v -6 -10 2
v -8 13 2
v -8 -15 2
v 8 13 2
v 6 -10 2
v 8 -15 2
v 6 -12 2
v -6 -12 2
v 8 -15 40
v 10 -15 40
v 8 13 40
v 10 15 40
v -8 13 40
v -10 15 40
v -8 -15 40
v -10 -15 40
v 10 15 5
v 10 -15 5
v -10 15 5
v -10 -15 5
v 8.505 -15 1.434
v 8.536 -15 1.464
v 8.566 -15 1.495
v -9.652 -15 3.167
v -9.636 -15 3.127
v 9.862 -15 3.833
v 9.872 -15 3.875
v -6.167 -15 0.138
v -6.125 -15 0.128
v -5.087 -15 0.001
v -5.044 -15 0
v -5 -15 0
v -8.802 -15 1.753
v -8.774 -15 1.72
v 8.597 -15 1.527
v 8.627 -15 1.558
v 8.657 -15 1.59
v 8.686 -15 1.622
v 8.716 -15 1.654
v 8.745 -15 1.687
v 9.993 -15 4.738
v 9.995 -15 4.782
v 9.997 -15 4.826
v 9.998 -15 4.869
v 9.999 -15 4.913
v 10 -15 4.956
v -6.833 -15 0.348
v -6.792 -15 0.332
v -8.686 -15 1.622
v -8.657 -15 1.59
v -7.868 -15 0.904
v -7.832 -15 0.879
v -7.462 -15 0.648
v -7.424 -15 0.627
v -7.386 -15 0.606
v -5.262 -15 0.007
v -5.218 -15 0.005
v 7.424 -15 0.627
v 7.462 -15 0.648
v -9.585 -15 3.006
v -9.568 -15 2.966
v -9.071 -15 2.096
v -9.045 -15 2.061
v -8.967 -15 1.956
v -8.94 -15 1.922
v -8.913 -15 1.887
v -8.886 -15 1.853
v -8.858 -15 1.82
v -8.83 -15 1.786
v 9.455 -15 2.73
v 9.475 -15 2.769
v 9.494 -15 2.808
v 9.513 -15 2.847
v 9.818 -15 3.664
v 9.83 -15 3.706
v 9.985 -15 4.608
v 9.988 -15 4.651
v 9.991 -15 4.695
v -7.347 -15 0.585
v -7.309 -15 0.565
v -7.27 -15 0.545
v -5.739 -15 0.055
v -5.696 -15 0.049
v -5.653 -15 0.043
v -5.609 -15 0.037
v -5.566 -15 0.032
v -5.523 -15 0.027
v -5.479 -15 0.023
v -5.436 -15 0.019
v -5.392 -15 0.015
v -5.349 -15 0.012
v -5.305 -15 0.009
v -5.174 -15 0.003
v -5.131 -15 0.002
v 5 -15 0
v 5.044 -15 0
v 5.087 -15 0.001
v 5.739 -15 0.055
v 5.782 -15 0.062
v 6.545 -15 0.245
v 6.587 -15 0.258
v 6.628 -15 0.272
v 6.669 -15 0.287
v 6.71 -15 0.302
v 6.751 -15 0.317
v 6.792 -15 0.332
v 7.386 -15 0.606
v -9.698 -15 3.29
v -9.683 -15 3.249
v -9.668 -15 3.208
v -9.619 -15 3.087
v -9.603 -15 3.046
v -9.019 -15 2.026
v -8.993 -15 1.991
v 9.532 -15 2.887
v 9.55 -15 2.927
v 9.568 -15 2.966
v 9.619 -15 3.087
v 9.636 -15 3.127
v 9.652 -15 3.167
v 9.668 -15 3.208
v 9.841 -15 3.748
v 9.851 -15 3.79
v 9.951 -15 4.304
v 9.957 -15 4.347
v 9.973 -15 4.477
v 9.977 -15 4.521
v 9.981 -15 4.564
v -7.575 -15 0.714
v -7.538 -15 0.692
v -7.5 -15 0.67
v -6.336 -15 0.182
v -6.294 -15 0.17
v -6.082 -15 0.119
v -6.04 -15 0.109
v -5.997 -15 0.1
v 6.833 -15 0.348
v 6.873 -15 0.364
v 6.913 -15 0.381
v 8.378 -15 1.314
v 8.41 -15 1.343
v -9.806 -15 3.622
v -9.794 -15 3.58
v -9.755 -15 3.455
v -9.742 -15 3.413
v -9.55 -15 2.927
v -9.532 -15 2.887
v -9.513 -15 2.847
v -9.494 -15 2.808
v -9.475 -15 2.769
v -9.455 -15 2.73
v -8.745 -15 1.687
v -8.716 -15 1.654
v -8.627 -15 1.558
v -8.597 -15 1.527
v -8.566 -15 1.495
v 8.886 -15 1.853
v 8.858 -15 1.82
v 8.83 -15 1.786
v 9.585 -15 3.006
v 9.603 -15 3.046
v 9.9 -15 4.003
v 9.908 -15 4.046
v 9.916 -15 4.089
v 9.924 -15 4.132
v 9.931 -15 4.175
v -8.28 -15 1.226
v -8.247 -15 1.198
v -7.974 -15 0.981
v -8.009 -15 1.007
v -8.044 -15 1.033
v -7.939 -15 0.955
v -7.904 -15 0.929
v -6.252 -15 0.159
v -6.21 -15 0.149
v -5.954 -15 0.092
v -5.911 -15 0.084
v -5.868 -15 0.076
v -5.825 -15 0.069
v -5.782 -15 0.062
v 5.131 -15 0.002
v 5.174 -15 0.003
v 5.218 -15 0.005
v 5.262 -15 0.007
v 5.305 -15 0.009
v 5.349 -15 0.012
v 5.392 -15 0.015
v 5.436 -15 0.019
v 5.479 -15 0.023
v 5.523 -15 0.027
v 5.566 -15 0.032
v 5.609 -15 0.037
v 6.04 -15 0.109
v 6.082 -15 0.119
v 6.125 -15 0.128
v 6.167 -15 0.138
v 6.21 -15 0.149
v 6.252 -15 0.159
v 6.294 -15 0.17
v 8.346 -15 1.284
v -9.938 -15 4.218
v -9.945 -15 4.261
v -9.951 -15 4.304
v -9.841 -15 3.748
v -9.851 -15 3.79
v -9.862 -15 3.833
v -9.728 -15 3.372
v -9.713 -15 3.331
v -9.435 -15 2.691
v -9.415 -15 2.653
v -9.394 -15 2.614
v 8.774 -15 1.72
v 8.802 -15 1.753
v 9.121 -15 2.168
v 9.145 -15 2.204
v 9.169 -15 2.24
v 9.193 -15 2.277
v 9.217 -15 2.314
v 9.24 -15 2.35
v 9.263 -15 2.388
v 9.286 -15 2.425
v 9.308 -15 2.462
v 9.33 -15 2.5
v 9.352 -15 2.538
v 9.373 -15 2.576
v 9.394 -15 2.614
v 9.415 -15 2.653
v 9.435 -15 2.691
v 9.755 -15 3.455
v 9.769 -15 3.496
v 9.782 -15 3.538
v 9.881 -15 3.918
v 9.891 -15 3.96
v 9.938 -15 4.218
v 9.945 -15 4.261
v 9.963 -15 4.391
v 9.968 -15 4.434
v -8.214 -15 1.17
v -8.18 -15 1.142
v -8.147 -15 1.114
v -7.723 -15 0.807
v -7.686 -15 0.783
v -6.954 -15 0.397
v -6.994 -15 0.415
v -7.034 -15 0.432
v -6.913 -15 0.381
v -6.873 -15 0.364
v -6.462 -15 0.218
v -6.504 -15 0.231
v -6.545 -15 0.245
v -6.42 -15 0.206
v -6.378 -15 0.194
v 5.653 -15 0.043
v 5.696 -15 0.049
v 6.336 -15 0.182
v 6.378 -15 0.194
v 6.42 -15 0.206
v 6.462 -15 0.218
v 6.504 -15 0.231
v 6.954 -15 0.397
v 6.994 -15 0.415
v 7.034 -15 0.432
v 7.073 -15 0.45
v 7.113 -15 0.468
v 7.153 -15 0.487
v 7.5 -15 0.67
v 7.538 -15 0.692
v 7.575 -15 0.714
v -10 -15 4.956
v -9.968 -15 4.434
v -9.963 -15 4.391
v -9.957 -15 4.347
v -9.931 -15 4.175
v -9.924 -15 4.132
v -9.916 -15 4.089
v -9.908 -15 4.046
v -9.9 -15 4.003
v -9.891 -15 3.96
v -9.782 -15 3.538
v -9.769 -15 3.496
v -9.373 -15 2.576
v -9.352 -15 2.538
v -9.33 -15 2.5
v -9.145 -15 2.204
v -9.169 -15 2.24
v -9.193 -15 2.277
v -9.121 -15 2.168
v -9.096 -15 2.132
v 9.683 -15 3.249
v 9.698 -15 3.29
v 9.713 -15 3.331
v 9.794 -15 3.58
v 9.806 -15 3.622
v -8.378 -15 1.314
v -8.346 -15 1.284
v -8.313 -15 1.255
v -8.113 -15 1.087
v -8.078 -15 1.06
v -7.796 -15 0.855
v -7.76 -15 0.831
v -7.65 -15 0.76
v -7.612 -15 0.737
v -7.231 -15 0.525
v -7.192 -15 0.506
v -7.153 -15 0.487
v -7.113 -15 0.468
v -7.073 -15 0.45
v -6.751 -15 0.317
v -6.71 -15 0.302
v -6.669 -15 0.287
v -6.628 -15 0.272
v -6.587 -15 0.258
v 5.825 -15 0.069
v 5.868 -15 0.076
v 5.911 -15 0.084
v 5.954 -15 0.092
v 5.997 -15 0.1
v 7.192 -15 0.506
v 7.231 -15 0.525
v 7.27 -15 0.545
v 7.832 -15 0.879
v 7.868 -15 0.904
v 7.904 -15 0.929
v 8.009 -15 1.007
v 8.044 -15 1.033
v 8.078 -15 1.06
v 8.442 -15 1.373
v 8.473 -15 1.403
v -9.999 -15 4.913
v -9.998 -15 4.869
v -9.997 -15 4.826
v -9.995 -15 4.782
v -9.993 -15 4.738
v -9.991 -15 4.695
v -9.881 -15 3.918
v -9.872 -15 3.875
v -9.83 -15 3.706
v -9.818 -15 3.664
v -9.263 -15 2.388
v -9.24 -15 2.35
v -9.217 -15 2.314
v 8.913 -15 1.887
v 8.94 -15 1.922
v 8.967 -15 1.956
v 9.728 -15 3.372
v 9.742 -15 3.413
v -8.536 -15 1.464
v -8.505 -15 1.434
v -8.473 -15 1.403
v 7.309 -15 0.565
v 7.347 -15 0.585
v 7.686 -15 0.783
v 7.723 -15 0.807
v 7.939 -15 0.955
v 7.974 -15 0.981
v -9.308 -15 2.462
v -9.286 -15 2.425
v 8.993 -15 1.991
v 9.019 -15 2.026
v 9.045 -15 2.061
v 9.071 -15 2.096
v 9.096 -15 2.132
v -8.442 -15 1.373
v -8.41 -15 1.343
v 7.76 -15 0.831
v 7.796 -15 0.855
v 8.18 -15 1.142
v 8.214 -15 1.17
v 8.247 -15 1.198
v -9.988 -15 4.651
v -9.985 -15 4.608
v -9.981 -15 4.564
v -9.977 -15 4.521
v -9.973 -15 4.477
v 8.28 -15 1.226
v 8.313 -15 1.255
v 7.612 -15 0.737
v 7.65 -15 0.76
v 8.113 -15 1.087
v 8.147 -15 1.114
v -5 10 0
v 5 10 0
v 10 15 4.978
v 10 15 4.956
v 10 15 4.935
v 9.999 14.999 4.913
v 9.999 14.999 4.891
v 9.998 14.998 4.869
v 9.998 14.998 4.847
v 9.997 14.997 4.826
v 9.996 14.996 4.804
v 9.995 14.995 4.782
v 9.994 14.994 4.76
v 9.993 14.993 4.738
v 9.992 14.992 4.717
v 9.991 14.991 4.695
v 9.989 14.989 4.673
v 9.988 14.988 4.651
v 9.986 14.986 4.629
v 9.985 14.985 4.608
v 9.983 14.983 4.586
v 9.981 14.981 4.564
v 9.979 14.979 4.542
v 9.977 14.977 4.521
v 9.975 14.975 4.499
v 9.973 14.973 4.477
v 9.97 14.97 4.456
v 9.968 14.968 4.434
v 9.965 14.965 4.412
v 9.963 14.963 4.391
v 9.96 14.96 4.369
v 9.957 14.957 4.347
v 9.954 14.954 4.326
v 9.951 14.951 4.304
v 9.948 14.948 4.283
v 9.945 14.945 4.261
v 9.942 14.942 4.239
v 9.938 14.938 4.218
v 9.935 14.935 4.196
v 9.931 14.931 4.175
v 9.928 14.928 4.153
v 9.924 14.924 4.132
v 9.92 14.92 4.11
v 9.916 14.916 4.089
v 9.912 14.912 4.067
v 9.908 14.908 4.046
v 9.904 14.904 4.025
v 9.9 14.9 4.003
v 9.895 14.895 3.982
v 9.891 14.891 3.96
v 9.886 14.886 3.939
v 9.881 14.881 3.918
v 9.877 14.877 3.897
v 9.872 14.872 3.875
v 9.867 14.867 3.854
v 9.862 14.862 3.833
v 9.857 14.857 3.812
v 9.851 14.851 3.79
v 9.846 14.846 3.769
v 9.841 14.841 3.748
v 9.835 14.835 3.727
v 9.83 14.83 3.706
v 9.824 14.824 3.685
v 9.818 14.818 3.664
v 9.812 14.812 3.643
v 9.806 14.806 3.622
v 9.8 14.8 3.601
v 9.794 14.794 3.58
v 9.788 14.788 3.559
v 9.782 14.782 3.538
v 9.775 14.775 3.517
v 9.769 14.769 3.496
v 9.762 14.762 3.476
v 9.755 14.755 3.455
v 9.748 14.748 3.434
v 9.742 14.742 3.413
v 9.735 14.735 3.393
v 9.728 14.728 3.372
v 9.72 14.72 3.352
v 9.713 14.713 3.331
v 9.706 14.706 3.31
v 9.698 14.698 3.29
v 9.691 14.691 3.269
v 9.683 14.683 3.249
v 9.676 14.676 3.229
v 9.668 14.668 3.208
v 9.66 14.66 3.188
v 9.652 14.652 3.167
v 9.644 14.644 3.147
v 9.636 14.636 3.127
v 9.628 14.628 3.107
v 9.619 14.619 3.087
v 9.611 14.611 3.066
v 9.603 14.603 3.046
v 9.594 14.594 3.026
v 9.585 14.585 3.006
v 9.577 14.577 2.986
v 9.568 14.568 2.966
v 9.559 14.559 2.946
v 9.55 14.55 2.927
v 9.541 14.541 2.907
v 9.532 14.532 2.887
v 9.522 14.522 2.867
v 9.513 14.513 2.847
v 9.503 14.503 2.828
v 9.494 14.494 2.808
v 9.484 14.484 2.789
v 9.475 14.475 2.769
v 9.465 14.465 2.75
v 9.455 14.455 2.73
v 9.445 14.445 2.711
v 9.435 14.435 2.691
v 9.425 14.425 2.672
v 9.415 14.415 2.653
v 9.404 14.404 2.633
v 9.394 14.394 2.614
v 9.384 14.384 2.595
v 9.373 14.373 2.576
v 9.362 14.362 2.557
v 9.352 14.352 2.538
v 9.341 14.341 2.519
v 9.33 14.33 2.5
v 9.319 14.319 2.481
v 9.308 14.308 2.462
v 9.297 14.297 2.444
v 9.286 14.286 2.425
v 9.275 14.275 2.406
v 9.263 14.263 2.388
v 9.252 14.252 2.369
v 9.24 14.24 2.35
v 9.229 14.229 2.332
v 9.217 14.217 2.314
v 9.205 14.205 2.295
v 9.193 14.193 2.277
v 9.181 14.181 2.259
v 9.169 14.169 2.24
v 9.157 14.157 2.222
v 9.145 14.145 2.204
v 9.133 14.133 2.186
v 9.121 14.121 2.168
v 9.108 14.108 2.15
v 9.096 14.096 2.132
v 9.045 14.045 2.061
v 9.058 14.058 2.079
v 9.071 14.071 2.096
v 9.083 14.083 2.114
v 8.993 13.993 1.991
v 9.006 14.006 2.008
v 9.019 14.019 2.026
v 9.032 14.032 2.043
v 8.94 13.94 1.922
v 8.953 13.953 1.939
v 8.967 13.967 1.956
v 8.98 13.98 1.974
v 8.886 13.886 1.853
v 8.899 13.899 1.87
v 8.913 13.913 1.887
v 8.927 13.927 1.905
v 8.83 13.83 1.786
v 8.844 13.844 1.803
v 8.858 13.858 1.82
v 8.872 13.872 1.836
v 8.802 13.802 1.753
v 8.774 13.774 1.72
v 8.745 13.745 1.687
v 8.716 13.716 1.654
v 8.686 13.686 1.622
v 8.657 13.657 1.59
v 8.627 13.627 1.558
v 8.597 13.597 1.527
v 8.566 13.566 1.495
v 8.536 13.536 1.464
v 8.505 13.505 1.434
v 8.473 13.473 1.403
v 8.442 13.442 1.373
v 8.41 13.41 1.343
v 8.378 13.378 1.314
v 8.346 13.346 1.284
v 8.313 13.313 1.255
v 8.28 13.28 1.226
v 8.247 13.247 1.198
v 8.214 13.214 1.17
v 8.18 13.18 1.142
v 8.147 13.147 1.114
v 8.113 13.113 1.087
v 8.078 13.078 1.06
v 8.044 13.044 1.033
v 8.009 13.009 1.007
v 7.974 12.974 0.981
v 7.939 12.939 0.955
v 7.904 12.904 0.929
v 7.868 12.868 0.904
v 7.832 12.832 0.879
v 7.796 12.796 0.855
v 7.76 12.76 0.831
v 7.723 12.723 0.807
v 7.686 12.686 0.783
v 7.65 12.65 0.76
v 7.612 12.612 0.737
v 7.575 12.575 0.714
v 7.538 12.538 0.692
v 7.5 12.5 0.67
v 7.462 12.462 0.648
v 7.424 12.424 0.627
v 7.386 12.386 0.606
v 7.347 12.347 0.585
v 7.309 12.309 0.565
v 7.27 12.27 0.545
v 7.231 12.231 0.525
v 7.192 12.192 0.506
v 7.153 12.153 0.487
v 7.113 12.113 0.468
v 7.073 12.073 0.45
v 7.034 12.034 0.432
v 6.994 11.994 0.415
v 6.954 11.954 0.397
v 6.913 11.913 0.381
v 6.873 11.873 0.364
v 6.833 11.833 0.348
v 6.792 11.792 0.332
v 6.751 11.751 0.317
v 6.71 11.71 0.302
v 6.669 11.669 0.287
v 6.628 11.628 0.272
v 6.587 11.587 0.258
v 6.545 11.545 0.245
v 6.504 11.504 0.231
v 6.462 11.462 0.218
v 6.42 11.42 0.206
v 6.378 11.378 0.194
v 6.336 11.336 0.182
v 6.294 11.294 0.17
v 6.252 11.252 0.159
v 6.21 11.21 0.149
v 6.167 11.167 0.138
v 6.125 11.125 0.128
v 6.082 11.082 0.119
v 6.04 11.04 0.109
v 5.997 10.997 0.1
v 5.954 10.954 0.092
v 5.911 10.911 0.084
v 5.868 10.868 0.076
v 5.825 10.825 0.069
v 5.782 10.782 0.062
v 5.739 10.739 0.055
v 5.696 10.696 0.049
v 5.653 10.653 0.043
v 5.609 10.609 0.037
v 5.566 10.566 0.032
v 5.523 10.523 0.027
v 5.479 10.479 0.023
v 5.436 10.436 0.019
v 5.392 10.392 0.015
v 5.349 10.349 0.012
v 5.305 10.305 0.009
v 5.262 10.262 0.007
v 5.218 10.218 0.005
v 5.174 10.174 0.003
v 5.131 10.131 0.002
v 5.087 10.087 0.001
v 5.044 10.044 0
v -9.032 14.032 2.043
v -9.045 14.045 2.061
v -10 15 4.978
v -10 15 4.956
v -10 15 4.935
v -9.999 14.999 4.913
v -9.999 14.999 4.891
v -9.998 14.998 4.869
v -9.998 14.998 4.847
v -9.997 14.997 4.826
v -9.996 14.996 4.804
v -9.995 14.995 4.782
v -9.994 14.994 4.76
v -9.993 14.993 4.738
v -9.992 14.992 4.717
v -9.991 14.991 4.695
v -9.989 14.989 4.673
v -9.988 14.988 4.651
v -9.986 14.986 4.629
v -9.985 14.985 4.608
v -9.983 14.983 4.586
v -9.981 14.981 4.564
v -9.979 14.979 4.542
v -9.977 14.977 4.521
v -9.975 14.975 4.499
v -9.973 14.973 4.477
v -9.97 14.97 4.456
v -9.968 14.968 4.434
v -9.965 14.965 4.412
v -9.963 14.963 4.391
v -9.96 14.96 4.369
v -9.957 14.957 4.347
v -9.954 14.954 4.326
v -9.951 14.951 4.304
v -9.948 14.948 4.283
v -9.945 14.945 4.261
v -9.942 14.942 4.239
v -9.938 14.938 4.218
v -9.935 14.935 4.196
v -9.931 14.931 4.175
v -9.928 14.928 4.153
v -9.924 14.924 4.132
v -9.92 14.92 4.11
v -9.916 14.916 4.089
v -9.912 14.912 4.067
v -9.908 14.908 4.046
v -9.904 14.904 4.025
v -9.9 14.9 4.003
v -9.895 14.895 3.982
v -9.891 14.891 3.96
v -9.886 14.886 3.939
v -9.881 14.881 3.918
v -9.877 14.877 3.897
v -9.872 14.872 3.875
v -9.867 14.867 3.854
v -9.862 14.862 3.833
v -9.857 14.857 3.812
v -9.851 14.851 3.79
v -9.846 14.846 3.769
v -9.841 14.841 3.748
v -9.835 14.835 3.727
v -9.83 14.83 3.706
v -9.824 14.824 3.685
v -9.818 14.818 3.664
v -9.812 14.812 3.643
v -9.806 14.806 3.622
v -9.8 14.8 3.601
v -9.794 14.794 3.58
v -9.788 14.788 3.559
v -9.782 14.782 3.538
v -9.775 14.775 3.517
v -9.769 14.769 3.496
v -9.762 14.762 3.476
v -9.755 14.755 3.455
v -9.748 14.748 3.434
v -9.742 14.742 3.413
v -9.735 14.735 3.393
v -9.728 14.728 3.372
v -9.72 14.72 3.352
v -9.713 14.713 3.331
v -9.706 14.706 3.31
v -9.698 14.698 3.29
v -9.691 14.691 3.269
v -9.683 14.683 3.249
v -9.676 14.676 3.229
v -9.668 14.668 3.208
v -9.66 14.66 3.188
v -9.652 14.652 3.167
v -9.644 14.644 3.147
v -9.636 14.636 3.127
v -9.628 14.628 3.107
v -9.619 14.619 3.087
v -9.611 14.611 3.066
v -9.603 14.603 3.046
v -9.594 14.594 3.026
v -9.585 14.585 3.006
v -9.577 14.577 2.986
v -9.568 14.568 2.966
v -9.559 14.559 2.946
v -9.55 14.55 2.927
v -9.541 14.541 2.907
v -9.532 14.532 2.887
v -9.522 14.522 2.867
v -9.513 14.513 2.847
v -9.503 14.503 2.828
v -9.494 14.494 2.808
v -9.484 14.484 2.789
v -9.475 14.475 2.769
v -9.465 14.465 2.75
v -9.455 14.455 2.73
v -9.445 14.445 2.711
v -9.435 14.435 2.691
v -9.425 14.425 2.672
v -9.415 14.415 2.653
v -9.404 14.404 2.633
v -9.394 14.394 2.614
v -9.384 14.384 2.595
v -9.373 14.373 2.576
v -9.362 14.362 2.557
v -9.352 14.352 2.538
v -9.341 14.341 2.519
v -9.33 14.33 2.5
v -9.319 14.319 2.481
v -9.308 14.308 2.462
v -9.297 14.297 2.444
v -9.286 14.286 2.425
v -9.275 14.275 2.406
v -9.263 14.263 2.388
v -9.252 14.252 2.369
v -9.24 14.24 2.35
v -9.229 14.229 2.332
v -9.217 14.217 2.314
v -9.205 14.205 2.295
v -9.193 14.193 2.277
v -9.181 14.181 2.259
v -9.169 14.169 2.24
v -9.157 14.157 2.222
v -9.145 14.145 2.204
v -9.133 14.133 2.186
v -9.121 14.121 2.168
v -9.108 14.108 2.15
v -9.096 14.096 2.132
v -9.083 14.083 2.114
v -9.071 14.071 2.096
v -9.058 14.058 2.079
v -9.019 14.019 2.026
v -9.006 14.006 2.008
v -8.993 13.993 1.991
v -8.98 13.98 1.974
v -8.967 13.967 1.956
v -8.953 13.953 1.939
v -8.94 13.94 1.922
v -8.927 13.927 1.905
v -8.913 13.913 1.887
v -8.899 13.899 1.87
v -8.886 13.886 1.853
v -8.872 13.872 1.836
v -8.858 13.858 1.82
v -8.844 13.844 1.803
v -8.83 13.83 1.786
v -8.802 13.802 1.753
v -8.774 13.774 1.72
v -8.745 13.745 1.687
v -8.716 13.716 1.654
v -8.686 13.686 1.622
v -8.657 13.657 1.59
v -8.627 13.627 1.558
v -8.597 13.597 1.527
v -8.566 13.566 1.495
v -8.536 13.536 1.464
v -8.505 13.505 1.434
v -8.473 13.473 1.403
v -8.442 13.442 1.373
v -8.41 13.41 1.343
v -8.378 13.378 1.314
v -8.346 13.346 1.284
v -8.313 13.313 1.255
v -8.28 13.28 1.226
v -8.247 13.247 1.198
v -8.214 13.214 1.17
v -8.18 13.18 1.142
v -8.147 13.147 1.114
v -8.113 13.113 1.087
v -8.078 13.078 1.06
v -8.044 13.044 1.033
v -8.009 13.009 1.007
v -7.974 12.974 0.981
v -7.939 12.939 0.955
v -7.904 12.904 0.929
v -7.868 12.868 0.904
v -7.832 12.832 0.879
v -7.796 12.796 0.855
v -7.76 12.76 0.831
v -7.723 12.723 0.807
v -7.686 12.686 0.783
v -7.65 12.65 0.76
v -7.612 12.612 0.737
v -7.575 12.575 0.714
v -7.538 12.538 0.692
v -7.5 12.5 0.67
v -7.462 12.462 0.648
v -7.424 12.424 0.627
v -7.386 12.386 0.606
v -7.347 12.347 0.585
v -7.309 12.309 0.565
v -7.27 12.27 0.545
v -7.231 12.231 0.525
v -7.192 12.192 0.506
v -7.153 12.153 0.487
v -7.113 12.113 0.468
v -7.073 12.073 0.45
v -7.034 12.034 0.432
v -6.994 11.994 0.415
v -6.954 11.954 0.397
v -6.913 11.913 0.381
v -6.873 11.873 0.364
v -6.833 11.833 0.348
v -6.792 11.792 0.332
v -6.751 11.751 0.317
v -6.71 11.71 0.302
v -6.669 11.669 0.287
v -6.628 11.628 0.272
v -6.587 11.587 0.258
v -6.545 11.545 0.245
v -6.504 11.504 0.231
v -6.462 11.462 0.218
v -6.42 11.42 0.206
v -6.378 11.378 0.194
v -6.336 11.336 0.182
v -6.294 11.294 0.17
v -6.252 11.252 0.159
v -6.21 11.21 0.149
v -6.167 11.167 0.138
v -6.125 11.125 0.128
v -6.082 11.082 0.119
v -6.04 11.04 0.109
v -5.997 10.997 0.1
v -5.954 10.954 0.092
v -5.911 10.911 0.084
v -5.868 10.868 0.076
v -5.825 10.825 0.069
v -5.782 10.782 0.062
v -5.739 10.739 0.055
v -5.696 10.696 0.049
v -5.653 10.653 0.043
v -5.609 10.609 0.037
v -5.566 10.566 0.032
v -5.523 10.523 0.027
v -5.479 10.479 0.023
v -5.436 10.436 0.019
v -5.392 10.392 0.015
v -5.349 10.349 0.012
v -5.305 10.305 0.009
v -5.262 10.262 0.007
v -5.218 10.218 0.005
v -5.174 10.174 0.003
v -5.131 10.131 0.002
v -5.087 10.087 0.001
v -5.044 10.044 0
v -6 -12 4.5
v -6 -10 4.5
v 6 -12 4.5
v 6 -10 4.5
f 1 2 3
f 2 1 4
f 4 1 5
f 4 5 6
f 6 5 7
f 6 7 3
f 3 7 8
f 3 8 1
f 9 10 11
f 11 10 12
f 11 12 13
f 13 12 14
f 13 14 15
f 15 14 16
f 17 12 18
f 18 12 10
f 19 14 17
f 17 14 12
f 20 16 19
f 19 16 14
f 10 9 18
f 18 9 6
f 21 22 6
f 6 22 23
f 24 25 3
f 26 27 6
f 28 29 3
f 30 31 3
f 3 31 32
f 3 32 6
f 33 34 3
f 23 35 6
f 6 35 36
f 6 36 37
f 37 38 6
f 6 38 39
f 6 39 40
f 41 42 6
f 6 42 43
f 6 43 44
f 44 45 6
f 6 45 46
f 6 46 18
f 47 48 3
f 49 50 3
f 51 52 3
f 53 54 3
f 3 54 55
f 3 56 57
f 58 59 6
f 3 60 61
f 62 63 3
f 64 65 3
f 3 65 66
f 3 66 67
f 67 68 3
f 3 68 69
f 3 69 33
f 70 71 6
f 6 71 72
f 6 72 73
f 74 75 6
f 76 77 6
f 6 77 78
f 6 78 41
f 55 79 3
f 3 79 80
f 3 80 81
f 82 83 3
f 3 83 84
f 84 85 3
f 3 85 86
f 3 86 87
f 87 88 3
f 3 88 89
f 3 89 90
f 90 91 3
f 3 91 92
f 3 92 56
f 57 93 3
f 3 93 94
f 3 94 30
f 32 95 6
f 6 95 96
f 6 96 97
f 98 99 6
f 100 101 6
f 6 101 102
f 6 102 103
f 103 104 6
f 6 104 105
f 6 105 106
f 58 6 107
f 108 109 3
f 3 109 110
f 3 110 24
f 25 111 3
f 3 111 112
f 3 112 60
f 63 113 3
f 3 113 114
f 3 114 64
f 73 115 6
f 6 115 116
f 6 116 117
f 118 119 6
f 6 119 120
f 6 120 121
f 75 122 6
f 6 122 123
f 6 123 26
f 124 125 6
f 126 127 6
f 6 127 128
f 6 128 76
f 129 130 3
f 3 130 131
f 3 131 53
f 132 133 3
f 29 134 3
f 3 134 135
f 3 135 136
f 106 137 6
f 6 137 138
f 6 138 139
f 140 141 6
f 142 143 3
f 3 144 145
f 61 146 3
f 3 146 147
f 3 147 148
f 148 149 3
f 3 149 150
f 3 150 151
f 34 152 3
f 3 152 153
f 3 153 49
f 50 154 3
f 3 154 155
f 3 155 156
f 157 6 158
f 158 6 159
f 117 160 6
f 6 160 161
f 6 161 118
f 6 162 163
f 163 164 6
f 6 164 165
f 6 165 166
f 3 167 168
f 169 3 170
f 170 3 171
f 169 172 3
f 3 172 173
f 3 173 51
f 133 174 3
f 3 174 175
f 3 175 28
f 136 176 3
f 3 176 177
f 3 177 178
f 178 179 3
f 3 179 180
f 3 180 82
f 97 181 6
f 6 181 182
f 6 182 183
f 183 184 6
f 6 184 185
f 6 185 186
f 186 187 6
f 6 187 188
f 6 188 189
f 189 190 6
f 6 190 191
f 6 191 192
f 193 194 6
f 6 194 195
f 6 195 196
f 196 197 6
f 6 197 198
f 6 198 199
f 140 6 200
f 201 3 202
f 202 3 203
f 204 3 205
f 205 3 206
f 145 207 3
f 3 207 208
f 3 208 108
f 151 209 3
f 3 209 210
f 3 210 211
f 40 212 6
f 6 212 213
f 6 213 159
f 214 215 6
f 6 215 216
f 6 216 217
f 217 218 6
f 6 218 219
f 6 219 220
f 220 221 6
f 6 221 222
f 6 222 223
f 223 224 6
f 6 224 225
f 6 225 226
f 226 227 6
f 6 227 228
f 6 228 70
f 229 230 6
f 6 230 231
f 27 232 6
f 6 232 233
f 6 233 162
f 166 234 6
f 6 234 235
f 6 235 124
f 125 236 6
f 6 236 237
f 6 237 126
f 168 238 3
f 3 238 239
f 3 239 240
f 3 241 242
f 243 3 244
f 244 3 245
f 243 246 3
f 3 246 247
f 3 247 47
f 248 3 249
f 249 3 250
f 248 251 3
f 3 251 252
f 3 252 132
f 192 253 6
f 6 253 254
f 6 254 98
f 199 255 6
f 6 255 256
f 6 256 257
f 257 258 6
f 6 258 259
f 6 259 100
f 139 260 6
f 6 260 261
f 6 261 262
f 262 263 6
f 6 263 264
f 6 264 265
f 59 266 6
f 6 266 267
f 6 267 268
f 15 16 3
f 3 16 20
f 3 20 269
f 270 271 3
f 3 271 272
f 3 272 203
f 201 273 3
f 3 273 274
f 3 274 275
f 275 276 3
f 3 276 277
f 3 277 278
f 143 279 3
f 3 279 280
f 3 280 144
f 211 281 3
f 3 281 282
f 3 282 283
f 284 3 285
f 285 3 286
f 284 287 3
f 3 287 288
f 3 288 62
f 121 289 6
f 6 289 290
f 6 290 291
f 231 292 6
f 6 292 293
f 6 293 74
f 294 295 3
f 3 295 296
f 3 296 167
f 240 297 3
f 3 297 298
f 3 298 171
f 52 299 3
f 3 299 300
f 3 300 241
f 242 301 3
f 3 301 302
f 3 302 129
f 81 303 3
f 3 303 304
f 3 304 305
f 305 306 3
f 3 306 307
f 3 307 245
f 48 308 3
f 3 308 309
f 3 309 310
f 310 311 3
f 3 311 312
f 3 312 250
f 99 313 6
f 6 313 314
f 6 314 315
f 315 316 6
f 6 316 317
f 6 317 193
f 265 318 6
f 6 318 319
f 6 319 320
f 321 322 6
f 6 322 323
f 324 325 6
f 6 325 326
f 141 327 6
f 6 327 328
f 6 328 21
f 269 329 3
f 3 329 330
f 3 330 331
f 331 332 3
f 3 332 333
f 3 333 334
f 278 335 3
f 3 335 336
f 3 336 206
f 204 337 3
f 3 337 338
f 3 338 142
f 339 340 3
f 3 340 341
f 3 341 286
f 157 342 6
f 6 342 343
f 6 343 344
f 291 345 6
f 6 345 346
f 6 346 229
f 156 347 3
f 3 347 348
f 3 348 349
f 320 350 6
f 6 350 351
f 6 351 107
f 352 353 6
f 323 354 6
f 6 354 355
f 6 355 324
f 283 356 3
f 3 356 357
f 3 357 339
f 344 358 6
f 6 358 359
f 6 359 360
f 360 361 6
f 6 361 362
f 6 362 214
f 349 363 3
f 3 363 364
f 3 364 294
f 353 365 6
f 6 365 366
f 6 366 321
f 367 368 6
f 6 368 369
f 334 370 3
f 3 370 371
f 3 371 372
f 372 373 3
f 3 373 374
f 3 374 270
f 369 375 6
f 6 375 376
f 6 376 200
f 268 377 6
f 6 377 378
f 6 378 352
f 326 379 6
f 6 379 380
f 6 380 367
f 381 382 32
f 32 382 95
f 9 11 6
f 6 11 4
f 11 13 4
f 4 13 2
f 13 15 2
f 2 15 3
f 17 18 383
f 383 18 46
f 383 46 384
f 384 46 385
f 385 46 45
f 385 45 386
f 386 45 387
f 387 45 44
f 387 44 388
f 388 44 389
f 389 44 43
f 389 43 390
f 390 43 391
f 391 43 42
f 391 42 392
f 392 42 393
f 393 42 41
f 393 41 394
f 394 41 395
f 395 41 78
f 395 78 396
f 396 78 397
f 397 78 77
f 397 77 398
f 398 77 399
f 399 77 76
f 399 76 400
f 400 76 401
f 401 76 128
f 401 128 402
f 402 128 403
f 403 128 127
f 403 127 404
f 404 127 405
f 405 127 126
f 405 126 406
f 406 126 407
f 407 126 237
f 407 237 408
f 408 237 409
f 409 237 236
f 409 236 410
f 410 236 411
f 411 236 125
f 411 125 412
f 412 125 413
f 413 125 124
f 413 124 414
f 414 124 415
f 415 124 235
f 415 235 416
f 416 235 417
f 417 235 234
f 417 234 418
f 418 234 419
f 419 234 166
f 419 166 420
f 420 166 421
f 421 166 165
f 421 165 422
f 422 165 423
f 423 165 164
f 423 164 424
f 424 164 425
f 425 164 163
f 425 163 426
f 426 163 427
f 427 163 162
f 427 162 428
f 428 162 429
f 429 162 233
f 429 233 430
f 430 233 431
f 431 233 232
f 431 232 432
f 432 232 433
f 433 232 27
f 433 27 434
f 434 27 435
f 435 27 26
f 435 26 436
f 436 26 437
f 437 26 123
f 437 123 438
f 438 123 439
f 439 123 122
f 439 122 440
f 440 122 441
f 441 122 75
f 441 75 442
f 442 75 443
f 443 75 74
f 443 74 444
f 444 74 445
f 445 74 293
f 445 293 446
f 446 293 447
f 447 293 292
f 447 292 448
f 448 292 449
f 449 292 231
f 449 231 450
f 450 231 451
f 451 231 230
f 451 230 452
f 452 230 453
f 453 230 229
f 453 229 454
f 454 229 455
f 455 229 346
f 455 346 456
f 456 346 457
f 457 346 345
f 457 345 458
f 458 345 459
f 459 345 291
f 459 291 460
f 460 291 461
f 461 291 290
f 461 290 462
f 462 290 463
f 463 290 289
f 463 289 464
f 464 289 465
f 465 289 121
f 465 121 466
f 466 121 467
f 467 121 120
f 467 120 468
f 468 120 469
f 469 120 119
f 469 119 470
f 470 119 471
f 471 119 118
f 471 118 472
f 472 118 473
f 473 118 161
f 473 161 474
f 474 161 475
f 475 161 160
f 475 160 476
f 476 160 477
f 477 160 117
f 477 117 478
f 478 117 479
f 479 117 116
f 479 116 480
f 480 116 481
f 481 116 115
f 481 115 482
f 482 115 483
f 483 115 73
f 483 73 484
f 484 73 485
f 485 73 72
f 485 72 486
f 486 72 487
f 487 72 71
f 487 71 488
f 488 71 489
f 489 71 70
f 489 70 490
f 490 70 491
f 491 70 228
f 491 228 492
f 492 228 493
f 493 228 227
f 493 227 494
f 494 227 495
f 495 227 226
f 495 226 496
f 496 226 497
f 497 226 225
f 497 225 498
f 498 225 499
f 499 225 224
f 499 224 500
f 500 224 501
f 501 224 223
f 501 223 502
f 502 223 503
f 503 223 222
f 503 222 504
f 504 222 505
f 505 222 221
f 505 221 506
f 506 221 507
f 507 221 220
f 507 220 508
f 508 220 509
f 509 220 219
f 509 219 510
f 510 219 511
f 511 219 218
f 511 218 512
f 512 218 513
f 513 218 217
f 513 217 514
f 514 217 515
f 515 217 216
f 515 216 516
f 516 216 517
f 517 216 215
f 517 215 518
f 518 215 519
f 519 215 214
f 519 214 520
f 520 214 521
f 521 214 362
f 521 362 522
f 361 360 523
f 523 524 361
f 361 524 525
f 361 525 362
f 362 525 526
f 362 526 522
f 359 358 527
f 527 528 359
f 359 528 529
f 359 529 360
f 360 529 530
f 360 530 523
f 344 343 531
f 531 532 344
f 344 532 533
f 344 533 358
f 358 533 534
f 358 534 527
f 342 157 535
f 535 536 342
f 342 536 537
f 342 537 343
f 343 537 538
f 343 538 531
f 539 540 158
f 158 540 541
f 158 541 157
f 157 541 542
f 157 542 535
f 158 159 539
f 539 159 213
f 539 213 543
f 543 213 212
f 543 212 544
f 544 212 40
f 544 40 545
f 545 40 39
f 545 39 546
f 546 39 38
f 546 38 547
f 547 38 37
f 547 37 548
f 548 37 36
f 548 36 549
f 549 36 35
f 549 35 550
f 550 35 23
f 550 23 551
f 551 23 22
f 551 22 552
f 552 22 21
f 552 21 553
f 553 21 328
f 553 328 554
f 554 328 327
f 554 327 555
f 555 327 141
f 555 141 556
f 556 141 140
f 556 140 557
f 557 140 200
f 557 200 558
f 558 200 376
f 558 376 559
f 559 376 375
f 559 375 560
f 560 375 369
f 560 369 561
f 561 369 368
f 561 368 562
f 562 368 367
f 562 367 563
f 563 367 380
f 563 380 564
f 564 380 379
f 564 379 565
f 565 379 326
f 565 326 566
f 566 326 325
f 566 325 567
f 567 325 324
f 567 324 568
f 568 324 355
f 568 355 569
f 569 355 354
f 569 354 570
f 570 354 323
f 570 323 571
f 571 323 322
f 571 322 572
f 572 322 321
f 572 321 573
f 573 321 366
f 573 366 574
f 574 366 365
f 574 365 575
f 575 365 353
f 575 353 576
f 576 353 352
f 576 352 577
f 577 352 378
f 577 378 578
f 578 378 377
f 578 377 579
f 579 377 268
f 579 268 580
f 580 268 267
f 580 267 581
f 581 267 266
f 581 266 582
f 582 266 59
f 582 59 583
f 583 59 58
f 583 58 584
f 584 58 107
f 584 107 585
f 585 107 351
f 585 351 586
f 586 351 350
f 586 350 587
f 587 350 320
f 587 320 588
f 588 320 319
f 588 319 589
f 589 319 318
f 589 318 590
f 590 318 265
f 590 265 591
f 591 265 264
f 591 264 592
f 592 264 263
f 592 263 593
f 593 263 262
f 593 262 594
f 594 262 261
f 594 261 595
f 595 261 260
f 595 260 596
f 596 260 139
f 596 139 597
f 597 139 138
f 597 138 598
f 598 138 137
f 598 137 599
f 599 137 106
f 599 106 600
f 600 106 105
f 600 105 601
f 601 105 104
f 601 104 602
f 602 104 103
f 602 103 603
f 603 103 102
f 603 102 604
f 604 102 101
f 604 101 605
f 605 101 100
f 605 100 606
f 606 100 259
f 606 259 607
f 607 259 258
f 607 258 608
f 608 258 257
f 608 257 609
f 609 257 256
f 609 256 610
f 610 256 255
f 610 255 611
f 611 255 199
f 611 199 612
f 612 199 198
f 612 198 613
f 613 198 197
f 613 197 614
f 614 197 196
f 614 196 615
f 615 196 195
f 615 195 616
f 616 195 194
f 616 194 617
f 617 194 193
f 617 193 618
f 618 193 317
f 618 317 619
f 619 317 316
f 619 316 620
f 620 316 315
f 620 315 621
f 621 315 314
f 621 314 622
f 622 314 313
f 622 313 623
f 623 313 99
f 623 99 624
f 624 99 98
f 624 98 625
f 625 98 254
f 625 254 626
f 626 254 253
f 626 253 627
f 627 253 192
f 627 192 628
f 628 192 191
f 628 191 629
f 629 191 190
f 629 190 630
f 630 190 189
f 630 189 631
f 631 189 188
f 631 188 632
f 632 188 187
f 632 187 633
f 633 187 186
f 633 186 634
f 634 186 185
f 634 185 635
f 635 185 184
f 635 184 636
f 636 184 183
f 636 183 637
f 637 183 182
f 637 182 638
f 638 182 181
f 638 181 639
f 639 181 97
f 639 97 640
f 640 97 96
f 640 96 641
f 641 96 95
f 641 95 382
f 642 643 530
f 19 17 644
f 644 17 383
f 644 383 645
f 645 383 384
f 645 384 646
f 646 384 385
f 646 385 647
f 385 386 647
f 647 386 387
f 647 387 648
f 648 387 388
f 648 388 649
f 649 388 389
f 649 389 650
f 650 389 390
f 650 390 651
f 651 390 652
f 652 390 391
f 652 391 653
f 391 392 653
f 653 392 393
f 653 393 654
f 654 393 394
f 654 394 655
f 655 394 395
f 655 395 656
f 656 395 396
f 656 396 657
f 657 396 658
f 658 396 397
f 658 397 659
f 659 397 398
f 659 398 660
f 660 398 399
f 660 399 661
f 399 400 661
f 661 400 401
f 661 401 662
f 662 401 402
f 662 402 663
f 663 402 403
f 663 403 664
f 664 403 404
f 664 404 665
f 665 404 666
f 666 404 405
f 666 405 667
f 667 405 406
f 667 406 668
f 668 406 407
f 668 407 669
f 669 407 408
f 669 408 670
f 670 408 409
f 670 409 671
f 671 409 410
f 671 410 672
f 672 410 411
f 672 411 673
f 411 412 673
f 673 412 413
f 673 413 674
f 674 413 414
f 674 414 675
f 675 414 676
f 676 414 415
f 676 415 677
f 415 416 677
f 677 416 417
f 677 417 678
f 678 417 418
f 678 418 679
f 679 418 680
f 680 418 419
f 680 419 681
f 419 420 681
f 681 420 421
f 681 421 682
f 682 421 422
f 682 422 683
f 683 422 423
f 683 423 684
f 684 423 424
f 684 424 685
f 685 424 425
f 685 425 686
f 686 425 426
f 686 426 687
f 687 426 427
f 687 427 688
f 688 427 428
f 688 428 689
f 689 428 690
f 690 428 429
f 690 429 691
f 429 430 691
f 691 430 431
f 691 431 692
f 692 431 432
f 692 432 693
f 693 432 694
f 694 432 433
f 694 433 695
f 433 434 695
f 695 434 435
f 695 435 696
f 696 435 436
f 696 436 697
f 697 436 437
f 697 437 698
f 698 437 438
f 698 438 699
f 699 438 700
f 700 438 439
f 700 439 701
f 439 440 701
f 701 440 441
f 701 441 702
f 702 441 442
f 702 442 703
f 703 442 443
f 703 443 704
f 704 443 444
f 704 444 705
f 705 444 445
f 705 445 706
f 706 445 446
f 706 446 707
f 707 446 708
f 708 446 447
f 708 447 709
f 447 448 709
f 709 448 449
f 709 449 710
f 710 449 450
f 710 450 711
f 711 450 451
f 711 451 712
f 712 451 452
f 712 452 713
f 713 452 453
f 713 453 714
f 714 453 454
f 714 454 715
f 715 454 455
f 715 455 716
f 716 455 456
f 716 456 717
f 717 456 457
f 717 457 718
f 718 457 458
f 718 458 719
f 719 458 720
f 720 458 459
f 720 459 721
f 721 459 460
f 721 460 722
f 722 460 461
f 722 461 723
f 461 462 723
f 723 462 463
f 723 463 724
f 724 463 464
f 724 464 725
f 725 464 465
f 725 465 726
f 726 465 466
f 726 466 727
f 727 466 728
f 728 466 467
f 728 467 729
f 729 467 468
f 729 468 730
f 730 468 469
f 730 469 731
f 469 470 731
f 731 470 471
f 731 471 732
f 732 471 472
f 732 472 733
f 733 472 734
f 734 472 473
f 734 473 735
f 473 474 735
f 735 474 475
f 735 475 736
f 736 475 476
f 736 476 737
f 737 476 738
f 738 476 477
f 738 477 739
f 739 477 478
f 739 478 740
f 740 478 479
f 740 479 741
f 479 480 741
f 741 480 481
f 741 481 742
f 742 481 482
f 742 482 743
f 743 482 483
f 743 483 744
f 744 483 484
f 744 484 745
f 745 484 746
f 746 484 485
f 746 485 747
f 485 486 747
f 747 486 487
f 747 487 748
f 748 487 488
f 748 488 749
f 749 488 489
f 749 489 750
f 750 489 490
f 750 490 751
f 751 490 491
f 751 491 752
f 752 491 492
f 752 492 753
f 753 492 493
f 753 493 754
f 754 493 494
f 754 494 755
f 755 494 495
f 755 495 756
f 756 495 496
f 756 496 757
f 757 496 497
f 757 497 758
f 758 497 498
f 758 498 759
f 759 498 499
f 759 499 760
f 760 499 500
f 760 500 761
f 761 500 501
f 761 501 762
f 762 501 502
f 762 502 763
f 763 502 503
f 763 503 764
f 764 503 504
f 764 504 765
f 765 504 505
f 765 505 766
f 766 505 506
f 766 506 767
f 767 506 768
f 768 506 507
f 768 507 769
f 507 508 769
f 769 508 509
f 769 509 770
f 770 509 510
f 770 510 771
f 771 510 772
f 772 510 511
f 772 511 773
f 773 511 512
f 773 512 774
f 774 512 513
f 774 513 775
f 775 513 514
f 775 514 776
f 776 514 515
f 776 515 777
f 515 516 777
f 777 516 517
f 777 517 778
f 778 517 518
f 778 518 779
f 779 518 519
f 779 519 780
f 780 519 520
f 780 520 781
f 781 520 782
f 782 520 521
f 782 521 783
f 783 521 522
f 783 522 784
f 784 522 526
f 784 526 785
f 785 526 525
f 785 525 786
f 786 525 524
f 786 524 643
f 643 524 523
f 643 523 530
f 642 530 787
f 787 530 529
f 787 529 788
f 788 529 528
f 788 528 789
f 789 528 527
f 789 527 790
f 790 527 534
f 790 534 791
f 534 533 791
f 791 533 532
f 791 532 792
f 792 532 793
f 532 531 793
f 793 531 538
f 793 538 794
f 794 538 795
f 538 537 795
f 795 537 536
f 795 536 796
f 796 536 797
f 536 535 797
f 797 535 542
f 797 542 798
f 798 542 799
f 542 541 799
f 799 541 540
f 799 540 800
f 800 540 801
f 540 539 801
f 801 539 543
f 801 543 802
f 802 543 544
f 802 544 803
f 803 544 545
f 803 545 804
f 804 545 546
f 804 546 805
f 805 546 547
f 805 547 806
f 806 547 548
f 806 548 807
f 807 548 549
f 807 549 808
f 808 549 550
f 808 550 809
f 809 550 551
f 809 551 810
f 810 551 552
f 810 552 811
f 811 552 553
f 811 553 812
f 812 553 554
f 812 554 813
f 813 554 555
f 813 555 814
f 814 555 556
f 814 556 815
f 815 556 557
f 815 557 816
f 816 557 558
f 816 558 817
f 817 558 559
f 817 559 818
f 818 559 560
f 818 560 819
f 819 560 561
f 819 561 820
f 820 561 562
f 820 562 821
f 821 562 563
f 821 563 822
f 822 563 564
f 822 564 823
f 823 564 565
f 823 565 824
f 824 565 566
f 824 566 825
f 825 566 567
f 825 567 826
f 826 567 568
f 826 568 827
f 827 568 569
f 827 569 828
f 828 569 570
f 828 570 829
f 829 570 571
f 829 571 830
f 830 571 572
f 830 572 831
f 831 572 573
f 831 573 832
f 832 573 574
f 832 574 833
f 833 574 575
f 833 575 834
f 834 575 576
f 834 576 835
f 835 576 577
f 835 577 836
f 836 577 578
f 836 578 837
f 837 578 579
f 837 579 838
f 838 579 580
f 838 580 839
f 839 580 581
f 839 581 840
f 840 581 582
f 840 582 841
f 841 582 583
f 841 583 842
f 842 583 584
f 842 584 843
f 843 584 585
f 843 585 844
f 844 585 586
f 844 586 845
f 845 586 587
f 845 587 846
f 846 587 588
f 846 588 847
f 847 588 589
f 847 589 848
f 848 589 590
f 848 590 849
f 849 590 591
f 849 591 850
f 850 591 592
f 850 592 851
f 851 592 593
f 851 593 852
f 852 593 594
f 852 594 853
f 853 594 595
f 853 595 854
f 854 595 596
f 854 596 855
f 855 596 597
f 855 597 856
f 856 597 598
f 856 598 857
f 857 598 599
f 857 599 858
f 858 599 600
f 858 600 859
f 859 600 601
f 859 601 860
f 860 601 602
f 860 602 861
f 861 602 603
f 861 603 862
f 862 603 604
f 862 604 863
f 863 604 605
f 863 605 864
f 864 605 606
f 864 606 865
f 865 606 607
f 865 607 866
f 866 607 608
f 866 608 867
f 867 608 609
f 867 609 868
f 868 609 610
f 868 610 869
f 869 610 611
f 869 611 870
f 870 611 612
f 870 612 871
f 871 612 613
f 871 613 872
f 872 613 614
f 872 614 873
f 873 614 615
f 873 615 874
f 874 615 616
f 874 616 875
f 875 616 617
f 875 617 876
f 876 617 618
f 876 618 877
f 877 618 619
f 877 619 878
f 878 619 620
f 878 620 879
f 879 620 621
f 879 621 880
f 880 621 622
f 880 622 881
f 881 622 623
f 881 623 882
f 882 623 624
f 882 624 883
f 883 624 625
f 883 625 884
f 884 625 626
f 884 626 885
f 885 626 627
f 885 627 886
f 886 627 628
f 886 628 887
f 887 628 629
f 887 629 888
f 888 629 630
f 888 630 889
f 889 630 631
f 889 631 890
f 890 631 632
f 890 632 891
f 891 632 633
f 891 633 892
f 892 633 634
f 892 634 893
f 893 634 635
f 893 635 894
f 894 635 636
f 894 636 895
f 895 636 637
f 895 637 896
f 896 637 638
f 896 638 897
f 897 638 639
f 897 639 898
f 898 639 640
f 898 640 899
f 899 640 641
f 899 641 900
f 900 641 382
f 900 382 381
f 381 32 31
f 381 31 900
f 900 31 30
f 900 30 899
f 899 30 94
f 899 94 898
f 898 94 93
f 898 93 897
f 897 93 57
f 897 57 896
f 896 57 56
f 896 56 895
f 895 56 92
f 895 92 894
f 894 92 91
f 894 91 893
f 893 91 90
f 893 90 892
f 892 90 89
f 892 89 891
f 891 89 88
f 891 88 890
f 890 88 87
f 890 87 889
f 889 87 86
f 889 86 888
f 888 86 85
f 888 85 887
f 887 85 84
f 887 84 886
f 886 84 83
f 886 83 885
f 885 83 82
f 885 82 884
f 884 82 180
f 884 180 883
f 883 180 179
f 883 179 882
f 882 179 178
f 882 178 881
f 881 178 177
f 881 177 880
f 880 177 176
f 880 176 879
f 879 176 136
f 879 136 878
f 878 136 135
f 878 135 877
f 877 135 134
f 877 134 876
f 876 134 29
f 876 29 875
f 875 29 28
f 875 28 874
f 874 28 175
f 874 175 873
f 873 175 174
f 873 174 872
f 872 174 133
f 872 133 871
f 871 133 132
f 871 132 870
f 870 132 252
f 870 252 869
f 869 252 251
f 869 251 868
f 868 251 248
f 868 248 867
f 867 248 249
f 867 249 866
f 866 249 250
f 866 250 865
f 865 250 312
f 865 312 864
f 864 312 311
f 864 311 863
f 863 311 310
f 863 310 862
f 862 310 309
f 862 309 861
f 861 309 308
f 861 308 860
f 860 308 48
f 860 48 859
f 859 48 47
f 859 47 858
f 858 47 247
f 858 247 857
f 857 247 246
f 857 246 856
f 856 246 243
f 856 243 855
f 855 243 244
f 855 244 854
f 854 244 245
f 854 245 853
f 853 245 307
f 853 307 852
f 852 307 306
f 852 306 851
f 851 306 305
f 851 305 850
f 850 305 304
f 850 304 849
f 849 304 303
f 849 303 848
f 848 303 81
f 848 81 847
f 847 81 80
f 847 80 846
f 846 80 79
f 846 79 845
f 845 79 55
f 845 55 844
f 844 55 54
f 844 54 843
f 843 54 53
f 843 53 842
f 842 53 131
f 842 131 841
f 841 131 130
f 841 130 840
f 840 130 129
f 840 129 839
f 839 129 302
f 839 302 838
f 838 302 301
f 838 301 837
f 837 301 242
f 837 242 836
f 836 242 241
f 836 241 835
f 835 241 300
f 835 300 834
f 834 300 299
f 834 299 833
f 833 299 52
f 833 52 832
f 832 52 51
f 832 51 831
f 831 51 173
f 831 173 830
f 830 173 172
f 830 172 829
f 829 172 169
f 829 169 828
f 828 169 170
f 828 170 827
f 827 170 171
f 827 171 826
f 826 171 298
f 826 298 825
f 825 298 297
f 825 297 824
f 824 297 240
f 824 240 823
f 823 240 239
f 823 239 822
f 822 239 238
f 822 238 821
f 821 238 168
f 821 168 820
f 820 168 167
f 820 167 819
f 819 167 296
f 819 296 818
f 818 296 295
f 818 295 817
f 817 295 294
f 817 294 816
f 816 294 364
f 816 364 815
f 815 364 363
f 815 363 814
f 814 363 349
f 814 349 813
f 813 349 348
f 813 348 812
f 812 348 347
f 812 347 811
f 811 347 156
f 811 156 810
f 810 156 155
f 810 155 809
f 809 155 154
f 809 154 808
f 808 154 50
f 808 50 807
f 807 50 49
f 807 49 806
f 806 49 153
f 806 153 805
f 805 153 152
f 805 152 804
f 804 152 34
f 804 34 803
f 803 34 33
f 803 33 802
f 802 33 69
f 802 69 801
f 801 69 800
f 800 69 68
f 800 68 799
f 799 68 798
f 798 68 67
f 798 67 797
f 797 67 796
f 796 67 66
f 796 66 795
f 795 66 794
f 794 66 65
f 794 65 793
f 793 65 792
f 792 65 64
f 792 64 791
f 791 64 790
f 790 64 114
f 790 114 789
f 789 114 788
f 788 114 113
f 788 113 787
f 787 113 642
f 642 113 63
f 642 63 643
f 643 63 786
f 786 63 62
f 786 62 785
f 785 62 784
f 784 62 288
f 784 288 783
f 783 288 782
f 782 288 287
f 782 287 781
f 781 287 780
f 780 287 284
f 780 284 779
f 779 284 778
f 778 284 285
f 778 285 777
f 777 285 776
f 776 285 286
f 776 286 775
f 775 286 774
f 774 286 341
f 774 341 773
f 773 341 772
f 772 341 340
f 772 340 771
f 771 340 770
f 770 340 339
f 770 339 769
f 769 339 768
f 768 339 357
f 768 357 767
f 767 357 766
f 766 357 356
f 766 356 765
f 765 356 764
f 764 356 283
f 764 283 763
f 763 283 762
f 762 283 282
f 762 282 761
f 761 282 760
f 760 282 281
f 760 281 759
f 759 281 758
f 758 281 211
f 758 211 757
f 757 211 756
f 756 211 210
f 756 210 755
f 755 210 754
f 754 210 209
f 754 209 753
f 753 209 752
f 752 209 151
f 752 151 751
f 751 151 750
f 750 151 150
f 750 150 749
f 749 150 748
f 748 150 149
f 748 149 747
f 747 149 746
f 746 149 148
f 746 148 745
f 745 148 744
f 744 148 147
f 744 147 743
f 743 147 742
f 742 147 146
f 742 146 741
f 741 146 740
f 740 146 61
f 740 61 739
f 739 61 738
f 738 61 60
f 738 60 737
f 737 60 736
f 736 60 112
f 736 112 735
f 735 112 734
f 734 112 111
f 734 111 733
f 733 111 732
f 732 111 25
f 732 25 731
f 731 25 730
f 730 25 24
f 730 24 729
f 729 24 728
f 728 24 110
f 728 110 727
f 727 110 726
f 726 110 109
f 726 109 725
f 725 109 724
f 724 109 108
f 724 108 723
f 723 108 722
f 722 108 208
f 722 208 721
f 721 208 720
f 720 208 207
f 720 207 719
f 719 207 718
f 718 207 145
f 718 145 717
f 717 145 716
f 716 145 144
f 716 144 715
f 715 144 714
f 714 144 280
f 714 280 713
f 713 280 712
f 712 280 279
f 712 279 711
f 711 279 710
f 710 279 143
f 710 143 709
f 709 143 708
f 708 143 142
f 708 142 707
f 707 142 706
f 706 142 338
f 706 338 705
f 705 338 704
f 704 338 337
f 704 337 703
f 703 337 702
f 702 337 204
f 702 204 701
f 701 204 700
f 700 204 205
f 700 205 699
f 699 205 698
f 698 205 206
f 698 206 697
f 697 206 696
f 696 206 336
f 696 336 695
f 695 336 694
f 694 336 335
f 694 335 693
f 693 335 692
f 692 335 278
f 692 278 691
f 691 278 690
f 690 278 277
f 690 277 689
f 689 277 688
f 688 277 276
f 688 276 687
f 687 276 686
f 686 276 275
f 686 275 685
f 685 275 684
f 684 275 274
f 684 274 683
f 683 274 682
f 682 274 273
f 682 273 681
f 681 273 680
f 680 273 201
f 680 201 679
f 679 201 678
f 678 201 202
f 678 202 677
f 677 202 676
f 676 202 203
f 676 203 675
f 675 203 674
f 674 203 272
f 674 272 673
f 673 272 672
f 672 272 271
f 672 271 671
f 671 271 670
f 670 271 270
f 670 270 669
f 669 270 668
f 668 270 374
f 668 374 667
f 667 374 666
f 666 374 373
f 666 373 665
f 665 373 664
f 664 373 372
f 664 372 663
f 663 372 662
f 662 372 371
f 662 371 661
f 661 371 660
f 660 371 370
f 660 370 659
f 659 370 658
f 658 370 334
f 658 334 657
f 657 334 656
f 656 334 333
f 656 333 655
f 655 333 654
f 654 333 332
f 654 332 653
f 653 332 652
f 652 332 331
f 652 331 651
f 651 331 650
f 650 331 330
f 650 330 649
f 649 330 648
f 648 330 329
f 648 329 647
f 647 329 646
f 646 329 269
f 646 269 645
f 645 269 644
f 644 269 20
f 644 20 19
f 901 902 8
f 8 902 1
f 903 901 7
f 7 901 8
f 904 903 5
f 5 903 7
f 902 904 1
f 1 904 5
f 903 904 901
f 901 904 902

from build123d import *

# Parameters (mm, degrees)
SZKIC1_W                    = 20
SZKIC1_H                    = 30
DODANIE_WYCI_GNI_CIE1_DEPTH = 40
SKORUPA3_T                  = -2
ZAOKR_GLENIE1_R             = 5
SZKIC2_W                    = 12
SZKIC2_H                    = 2
DODANIE_WYCI_GNI_CIE2_DEPTH = 2.5


with BuildPart() as part:
    # Szkic1 → Dodanie-wyciągnięcie1 (new body)
    with BuildSketch(Plane.XY):
        Rectangle(SZKIC1_W, SZKIC1_H)
    extrude(amount=DODANIE_WYCI_GNI_CIE1_DEPTH)

    # Skorupa3
    skorupa3_openings = [part.faces().sort_by_distance(p)[0] for p in [
        (0, 0, 40),
        (0, -15, 20),
    ]]
    offset(amount=SKORUPA3_T, openings=skorupa3_openings, kind=Kind.INTERSECTION)

    # Zaokrąglenie1
    zaokr_glenie1_edges = [part.edges().sort_by_distance(p)[0] for p in [
        (-10, 0, 0),
        (0, 15, 0),
        (10, 0, 0),
    ]]
    fillet(zaokr_glenie1_edges, radius=ZAOKR_GLENIE1_R)

    # Szkic2 → Dodanie-wyciągnięcie2 (add)
    with BuildSketch(Plane.XY.offset(2)):
        with Locations((0, -11)):
            Rectangle(SZKIC2_W, SZKIC2_H)
    extrude(amount=DODANIE_WYCI_GNI_CIE2_DEPTH)


solid = part.part
